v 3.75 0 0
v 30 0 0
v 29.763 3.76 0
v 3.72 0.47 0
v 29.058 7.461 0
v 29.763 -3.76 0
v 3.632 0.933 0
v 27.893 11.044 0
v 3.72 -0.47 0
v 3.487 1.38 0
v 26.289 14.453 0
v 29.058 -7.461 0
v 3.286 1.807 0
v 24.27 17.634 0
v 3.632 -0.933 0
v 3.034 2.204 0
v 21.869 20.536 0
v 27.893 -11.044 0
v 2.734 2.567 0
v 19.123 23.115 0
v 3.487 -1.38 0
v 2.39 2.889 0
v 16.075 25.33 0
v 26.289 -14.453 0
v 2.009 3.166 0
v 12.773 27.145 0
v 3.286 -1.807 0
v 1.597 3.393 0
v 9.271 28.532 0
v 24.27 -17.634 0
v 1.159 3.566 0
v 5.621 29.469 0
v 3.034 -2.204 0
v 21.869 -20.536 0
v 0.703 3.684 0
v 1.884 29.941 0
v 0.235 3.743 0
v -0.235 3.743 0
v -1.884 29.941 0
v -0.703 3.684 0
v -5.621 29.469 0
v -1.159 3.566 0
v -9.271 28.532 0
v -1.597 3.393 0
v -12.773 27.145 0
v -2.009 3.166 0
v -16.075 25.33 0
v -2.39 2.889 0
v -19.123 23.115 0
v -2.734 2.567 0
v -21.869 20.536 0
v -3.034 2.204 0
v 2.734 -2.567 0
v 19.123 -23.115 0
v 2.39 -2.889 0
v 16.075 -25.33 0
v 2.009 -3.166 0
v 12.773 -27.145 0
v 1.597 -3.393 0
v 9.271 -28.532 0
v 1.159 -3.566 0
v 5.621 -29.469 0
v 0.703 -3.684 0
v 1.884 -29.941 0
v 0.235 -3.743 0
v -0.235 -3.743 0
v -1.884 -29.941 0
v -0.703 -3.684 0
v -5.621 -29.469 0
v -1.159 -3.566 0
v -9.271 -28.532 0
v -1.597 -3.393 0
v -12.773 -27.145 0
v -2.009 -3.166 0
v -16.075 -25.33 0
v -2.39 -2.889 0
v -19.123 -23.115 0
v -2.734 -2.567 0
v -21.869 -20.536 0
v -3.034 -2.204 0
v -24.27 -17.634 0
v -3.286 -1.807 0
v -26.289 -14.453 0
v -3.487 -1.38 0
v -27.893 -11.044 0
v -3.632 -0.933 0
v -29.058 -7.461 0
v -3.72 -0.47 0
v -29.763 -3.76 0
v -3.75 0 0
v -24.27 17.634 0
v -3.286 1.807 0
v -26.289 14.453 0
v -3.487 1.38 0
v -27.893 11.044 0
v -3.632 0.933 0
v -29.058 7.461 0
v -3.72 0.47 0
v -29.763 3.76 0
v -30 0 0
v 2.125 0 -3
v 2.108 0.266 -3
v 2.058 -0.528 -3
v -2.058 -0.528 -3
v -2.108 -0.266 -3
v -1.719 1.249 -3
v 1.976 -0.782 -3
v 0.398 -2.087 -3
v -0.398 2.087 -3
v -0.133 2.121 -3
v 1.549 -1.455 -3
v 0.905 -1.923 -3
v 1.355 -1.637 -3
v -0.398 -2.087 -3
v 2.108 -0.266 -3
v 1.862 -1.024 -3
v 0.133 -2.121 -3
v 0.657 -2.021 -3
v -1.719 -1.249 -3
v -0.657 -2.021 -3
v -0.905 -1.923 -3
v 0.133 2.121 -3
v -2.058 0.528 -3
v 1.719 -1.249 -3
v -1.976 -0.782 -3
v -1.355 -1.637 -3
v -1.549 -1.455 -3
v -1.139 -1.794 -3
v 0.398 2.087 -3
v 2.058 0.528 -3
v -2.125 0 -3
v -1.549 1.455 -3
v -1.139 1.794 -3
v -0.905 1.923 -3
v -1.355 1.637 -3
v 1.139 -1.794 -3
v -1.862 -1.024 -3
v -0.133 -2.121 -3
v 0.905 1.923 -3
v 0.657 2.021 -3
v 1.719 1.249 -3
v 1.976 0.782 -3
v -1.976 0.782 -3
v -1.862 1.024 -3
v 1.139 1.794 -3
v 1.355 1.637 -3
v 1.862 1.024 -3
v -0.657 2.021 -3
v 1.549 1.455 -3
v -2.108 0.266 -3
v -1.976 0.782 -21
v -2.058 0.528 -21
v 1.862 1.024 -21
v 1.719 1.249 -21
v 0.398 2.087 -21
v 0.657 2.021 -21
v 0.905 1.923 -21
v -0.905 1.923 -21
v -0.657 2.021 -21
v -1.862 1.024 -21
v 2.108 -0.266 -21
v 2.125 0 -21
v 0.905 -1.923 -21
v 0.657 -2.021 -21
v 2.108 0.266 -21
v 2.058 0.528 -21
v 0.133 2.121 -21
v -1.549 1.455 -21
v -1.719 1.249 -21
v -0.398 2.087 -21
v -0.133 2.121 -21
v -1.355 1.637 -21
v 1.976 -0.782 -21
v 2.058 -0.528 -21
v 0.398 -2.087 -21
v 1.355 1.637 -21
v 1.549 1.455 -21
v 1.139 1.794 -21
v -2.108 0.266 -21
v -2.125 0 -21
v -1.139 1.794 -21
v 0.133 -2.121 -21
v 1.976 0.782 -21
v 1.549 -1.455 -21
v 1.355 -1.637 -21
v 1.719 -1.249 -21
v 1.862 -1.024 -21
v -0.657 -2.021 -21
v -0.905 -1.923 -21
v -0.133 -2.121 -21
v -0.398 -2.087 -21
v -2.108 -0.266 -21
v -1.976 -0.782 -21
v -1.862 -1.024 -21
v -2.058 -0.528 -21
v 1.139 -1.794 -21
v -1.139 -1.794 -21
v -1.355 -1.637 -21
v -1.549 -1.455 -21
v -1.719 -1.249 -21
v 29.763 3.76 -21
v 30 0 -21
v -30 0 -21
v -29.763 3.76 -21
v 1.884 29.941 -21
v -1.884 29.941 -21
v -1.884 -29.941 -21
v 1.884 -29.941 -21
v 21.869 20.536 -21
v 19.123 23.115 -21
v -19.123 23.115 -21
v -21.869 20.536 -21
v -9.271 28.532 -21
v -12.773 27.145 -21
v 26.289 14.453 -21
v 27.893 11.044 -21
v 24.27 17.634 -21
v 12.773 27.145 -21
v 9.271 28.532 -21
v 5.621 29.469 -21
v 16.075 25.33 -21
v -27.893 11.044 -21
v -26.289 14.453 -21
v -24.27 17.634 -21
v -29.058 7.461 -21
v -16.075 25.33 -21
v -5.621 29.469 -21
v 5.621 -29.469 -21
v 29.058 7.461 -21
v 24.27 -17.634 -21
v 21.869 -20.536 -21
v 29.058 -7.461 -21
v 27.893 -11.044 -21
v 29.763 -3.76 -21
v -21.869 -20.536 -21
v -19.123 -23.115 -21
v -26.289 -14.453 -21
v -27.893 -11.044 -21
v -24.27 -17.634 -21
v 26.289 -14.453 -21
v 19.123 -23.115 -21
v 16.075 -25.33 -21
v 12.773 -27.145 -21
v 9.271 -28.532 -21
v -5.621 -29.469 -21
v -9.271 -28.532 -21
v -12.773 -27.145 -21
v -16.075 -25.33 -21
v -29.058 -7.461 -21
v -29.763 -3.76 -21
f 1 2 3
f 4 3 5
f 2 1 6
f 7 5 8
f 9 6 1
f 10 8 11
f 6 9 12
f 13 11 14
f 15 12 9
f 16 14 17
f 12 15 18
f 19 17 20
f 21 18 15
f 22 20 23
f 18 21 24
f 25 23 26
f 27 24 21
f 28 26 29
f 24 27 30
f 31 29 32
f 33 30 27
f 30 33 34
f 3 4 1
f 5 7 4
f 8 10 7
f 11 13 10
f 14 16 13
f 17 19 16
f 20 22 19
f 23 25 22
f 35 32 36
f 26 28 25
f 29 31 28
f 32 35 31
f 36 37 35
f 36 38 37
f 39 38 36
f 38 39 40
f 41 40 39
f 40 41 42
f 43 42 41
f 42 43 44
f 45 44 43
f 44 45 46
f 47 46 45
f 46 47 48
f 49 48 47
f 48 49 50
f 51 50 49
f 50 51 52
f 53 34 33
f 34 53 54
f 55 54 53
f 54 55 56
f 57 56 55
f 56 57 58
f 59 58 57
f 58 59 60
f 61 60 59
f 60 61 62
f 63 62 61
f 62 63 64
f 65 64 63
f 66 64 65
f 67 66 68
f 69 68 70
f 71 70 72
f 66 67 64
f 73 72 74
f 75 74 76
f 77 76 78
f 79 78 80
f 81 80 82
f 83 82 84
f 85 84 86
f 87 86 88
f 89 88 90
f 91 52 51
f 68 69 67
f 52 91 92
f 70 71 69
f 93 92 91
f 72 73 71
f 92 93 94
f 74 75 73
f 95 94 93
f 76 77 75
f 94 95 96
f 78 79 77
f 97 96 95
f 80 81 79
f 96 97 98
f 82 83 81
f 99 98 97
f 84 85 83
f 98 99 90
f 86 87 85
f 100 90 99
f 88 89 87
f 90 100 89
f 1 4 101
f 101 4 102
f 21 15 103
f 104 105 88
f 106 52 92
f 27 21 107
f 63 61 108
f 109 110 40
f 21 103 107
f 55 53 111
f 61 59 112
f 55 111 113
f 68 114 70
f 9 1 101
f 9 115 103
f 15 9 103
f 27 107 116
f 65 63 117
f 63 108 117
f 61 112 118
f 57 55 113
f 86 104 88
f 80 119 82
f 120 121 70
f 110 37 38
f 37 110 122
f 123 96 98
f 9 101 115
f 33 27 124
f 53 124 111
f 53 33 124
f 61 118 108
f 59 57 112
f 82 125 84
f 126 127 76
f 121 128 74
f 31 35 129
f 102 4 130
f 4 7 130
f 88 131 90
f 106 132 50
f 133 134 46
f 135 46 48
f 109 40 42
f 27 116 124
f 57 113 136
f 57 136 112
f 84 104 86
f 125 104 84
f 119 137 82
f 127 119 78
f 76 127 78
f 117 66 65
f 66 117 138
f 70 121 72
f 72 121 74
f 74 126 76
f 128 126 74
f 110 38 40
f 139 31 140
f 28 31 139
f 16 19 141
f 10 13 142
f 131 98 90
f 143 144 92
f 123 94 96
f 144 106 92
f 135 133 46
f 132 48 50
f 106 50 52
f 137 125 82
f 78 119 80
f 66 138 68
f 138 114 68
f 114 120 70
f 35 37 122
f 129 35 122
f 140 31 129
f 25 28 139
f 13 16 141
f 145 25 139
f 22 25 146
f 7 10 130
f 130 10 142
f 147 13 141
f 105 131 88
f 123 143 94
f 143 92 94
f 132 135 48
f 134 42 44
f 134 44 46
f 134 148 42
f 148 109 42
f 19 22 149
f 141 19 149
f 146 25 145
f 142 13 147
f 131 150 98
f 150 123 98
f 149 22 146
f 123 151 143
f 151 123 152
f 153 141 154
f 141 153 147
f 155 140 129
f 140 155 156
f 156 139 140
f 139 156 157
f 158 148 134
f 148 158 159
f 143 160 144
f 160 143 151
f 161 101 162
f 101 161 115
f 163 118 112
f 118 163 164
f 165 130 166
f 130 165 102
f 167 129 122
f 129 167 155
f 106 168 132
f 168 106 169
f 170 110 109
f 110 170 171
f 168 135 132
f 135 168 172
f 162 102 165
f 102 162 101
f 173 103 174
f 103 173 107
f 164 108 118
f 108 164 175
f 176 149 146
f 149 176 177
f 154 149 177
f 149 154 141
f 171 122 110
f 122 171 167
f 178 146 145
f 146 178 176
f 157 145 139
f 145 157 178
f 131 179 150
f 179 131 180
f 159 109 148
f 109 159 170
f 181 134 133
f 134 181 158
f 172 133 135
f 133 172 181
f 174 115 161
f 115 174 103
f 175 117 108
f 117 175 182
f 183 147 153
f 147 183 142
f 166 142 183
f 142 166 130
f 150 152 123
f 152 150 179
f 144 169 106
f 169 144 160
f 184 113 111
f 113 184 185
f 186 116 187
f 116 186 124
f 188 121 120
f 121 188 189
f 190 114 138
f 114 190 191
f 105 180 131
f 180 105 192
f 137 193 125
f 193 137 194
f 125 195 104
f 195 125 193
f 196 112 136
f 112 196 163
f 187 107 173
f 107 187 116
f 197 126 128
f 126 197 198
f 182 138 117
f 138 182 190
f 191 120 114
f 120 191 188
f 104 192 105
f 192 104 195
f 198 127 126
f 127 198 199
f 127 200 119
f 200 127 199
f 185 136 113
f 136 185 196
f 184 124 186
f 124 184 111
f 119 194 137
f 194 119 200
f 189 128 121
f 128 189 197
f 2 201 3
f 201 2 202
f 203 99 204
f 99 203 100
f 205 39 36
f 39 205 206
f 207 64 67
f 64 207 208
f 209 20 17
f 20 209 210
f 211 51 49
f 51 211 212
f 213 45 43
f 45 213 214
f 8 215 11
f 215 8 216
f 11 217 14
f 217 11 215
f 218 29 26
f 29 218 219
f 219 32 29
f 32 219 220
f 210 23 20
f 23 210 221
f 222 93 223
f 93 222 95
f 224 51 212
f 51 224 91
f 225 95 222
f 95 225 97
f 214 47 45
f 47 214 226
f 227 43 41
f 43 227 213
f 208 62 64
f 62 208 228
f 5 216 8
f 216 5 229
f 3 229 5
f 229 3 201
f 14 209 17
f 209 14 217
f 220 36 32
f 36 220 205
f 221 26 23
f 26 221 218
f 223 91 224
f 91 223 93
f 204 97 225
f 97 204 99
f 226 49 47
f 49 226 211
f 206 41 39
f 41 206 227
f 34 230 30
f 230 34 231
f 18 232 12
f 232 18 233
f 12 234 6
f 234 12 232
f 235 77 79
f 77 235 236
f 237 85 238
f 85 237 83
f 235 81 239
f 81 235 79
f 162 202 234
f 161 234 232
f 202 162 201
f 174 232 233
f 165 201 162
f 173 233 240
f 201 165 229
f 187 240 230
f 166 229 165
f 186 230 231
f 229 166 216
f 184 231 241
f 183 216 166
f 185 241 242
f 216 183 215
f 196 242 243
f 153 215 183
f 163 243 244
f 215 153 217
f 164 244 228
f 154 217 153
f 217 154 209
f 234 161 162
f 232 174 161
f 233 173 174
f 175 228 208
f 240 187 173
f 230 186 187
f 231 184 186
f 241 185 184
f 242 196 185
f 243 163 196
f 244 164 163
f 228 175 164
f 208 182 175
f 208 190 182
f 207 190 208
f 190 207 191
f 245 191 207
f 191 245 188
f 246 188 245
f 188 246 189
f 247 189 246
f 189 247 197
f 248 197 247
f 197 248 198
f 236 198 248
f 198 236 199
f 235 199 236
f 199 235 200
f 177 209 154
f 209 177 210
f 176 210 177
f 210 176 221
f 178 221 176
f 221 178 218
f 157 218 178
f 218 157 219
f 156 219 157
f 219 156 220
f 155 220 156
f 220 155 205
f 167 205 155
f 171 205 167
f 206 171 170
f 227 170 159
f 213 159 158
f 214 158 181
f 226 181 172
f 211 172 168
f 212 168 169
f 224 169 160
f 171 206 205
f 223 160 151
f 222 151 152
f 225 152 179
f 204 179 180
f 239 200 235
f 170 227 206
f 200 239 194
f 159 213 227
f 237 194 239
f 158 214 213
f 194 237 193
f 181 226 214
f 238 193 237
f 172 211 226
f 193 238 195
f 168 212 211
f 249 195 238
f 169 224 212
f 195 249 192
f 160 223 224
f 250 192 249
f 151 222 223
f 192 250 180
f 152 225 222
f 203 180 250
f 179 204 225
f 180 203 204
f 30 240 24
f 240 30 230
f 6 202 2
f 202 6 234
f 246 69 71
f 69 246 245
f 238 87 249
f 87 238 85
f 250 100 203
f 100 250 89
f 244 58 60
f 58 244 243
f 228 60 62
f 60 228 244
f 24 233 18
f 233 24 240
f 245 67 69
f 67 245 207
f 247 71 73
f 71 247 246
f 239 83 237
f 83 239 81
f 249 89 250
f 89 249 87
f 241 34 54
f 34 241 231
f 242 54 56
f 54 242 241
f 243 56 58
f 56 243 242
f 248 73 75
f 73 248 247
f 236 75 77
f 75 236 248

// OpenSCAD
$fn = 50;

difference() {
	union() {
		translate(v = [0, 0, -21.0]) {
			cylinder(h = 21, r = 30.0);
		}
	}
	union() {
		translate(v = [0, 0, 0]) {
			rotate(a = [0, 0, 0]) {
				difference() {
					union() {
						translate(v = [0, 0, -24.0]) {
							cylinder(h = 24, r = 2.0);
						}
						translate(v = [0, 0, -3]) {
							cylinder(h = 3, r1 = 2.125, r2 = 3.75);
						}
						translate(v = [0, 0, -24.0]) {
							cylinder(h = 24, r = 2.125);
						}
						translate(v = [0, 0, -24.0]) {
							cylinder(h = 24, r = 2.0);
						}
					}
					union();
				}
			}
		}
	}
}
